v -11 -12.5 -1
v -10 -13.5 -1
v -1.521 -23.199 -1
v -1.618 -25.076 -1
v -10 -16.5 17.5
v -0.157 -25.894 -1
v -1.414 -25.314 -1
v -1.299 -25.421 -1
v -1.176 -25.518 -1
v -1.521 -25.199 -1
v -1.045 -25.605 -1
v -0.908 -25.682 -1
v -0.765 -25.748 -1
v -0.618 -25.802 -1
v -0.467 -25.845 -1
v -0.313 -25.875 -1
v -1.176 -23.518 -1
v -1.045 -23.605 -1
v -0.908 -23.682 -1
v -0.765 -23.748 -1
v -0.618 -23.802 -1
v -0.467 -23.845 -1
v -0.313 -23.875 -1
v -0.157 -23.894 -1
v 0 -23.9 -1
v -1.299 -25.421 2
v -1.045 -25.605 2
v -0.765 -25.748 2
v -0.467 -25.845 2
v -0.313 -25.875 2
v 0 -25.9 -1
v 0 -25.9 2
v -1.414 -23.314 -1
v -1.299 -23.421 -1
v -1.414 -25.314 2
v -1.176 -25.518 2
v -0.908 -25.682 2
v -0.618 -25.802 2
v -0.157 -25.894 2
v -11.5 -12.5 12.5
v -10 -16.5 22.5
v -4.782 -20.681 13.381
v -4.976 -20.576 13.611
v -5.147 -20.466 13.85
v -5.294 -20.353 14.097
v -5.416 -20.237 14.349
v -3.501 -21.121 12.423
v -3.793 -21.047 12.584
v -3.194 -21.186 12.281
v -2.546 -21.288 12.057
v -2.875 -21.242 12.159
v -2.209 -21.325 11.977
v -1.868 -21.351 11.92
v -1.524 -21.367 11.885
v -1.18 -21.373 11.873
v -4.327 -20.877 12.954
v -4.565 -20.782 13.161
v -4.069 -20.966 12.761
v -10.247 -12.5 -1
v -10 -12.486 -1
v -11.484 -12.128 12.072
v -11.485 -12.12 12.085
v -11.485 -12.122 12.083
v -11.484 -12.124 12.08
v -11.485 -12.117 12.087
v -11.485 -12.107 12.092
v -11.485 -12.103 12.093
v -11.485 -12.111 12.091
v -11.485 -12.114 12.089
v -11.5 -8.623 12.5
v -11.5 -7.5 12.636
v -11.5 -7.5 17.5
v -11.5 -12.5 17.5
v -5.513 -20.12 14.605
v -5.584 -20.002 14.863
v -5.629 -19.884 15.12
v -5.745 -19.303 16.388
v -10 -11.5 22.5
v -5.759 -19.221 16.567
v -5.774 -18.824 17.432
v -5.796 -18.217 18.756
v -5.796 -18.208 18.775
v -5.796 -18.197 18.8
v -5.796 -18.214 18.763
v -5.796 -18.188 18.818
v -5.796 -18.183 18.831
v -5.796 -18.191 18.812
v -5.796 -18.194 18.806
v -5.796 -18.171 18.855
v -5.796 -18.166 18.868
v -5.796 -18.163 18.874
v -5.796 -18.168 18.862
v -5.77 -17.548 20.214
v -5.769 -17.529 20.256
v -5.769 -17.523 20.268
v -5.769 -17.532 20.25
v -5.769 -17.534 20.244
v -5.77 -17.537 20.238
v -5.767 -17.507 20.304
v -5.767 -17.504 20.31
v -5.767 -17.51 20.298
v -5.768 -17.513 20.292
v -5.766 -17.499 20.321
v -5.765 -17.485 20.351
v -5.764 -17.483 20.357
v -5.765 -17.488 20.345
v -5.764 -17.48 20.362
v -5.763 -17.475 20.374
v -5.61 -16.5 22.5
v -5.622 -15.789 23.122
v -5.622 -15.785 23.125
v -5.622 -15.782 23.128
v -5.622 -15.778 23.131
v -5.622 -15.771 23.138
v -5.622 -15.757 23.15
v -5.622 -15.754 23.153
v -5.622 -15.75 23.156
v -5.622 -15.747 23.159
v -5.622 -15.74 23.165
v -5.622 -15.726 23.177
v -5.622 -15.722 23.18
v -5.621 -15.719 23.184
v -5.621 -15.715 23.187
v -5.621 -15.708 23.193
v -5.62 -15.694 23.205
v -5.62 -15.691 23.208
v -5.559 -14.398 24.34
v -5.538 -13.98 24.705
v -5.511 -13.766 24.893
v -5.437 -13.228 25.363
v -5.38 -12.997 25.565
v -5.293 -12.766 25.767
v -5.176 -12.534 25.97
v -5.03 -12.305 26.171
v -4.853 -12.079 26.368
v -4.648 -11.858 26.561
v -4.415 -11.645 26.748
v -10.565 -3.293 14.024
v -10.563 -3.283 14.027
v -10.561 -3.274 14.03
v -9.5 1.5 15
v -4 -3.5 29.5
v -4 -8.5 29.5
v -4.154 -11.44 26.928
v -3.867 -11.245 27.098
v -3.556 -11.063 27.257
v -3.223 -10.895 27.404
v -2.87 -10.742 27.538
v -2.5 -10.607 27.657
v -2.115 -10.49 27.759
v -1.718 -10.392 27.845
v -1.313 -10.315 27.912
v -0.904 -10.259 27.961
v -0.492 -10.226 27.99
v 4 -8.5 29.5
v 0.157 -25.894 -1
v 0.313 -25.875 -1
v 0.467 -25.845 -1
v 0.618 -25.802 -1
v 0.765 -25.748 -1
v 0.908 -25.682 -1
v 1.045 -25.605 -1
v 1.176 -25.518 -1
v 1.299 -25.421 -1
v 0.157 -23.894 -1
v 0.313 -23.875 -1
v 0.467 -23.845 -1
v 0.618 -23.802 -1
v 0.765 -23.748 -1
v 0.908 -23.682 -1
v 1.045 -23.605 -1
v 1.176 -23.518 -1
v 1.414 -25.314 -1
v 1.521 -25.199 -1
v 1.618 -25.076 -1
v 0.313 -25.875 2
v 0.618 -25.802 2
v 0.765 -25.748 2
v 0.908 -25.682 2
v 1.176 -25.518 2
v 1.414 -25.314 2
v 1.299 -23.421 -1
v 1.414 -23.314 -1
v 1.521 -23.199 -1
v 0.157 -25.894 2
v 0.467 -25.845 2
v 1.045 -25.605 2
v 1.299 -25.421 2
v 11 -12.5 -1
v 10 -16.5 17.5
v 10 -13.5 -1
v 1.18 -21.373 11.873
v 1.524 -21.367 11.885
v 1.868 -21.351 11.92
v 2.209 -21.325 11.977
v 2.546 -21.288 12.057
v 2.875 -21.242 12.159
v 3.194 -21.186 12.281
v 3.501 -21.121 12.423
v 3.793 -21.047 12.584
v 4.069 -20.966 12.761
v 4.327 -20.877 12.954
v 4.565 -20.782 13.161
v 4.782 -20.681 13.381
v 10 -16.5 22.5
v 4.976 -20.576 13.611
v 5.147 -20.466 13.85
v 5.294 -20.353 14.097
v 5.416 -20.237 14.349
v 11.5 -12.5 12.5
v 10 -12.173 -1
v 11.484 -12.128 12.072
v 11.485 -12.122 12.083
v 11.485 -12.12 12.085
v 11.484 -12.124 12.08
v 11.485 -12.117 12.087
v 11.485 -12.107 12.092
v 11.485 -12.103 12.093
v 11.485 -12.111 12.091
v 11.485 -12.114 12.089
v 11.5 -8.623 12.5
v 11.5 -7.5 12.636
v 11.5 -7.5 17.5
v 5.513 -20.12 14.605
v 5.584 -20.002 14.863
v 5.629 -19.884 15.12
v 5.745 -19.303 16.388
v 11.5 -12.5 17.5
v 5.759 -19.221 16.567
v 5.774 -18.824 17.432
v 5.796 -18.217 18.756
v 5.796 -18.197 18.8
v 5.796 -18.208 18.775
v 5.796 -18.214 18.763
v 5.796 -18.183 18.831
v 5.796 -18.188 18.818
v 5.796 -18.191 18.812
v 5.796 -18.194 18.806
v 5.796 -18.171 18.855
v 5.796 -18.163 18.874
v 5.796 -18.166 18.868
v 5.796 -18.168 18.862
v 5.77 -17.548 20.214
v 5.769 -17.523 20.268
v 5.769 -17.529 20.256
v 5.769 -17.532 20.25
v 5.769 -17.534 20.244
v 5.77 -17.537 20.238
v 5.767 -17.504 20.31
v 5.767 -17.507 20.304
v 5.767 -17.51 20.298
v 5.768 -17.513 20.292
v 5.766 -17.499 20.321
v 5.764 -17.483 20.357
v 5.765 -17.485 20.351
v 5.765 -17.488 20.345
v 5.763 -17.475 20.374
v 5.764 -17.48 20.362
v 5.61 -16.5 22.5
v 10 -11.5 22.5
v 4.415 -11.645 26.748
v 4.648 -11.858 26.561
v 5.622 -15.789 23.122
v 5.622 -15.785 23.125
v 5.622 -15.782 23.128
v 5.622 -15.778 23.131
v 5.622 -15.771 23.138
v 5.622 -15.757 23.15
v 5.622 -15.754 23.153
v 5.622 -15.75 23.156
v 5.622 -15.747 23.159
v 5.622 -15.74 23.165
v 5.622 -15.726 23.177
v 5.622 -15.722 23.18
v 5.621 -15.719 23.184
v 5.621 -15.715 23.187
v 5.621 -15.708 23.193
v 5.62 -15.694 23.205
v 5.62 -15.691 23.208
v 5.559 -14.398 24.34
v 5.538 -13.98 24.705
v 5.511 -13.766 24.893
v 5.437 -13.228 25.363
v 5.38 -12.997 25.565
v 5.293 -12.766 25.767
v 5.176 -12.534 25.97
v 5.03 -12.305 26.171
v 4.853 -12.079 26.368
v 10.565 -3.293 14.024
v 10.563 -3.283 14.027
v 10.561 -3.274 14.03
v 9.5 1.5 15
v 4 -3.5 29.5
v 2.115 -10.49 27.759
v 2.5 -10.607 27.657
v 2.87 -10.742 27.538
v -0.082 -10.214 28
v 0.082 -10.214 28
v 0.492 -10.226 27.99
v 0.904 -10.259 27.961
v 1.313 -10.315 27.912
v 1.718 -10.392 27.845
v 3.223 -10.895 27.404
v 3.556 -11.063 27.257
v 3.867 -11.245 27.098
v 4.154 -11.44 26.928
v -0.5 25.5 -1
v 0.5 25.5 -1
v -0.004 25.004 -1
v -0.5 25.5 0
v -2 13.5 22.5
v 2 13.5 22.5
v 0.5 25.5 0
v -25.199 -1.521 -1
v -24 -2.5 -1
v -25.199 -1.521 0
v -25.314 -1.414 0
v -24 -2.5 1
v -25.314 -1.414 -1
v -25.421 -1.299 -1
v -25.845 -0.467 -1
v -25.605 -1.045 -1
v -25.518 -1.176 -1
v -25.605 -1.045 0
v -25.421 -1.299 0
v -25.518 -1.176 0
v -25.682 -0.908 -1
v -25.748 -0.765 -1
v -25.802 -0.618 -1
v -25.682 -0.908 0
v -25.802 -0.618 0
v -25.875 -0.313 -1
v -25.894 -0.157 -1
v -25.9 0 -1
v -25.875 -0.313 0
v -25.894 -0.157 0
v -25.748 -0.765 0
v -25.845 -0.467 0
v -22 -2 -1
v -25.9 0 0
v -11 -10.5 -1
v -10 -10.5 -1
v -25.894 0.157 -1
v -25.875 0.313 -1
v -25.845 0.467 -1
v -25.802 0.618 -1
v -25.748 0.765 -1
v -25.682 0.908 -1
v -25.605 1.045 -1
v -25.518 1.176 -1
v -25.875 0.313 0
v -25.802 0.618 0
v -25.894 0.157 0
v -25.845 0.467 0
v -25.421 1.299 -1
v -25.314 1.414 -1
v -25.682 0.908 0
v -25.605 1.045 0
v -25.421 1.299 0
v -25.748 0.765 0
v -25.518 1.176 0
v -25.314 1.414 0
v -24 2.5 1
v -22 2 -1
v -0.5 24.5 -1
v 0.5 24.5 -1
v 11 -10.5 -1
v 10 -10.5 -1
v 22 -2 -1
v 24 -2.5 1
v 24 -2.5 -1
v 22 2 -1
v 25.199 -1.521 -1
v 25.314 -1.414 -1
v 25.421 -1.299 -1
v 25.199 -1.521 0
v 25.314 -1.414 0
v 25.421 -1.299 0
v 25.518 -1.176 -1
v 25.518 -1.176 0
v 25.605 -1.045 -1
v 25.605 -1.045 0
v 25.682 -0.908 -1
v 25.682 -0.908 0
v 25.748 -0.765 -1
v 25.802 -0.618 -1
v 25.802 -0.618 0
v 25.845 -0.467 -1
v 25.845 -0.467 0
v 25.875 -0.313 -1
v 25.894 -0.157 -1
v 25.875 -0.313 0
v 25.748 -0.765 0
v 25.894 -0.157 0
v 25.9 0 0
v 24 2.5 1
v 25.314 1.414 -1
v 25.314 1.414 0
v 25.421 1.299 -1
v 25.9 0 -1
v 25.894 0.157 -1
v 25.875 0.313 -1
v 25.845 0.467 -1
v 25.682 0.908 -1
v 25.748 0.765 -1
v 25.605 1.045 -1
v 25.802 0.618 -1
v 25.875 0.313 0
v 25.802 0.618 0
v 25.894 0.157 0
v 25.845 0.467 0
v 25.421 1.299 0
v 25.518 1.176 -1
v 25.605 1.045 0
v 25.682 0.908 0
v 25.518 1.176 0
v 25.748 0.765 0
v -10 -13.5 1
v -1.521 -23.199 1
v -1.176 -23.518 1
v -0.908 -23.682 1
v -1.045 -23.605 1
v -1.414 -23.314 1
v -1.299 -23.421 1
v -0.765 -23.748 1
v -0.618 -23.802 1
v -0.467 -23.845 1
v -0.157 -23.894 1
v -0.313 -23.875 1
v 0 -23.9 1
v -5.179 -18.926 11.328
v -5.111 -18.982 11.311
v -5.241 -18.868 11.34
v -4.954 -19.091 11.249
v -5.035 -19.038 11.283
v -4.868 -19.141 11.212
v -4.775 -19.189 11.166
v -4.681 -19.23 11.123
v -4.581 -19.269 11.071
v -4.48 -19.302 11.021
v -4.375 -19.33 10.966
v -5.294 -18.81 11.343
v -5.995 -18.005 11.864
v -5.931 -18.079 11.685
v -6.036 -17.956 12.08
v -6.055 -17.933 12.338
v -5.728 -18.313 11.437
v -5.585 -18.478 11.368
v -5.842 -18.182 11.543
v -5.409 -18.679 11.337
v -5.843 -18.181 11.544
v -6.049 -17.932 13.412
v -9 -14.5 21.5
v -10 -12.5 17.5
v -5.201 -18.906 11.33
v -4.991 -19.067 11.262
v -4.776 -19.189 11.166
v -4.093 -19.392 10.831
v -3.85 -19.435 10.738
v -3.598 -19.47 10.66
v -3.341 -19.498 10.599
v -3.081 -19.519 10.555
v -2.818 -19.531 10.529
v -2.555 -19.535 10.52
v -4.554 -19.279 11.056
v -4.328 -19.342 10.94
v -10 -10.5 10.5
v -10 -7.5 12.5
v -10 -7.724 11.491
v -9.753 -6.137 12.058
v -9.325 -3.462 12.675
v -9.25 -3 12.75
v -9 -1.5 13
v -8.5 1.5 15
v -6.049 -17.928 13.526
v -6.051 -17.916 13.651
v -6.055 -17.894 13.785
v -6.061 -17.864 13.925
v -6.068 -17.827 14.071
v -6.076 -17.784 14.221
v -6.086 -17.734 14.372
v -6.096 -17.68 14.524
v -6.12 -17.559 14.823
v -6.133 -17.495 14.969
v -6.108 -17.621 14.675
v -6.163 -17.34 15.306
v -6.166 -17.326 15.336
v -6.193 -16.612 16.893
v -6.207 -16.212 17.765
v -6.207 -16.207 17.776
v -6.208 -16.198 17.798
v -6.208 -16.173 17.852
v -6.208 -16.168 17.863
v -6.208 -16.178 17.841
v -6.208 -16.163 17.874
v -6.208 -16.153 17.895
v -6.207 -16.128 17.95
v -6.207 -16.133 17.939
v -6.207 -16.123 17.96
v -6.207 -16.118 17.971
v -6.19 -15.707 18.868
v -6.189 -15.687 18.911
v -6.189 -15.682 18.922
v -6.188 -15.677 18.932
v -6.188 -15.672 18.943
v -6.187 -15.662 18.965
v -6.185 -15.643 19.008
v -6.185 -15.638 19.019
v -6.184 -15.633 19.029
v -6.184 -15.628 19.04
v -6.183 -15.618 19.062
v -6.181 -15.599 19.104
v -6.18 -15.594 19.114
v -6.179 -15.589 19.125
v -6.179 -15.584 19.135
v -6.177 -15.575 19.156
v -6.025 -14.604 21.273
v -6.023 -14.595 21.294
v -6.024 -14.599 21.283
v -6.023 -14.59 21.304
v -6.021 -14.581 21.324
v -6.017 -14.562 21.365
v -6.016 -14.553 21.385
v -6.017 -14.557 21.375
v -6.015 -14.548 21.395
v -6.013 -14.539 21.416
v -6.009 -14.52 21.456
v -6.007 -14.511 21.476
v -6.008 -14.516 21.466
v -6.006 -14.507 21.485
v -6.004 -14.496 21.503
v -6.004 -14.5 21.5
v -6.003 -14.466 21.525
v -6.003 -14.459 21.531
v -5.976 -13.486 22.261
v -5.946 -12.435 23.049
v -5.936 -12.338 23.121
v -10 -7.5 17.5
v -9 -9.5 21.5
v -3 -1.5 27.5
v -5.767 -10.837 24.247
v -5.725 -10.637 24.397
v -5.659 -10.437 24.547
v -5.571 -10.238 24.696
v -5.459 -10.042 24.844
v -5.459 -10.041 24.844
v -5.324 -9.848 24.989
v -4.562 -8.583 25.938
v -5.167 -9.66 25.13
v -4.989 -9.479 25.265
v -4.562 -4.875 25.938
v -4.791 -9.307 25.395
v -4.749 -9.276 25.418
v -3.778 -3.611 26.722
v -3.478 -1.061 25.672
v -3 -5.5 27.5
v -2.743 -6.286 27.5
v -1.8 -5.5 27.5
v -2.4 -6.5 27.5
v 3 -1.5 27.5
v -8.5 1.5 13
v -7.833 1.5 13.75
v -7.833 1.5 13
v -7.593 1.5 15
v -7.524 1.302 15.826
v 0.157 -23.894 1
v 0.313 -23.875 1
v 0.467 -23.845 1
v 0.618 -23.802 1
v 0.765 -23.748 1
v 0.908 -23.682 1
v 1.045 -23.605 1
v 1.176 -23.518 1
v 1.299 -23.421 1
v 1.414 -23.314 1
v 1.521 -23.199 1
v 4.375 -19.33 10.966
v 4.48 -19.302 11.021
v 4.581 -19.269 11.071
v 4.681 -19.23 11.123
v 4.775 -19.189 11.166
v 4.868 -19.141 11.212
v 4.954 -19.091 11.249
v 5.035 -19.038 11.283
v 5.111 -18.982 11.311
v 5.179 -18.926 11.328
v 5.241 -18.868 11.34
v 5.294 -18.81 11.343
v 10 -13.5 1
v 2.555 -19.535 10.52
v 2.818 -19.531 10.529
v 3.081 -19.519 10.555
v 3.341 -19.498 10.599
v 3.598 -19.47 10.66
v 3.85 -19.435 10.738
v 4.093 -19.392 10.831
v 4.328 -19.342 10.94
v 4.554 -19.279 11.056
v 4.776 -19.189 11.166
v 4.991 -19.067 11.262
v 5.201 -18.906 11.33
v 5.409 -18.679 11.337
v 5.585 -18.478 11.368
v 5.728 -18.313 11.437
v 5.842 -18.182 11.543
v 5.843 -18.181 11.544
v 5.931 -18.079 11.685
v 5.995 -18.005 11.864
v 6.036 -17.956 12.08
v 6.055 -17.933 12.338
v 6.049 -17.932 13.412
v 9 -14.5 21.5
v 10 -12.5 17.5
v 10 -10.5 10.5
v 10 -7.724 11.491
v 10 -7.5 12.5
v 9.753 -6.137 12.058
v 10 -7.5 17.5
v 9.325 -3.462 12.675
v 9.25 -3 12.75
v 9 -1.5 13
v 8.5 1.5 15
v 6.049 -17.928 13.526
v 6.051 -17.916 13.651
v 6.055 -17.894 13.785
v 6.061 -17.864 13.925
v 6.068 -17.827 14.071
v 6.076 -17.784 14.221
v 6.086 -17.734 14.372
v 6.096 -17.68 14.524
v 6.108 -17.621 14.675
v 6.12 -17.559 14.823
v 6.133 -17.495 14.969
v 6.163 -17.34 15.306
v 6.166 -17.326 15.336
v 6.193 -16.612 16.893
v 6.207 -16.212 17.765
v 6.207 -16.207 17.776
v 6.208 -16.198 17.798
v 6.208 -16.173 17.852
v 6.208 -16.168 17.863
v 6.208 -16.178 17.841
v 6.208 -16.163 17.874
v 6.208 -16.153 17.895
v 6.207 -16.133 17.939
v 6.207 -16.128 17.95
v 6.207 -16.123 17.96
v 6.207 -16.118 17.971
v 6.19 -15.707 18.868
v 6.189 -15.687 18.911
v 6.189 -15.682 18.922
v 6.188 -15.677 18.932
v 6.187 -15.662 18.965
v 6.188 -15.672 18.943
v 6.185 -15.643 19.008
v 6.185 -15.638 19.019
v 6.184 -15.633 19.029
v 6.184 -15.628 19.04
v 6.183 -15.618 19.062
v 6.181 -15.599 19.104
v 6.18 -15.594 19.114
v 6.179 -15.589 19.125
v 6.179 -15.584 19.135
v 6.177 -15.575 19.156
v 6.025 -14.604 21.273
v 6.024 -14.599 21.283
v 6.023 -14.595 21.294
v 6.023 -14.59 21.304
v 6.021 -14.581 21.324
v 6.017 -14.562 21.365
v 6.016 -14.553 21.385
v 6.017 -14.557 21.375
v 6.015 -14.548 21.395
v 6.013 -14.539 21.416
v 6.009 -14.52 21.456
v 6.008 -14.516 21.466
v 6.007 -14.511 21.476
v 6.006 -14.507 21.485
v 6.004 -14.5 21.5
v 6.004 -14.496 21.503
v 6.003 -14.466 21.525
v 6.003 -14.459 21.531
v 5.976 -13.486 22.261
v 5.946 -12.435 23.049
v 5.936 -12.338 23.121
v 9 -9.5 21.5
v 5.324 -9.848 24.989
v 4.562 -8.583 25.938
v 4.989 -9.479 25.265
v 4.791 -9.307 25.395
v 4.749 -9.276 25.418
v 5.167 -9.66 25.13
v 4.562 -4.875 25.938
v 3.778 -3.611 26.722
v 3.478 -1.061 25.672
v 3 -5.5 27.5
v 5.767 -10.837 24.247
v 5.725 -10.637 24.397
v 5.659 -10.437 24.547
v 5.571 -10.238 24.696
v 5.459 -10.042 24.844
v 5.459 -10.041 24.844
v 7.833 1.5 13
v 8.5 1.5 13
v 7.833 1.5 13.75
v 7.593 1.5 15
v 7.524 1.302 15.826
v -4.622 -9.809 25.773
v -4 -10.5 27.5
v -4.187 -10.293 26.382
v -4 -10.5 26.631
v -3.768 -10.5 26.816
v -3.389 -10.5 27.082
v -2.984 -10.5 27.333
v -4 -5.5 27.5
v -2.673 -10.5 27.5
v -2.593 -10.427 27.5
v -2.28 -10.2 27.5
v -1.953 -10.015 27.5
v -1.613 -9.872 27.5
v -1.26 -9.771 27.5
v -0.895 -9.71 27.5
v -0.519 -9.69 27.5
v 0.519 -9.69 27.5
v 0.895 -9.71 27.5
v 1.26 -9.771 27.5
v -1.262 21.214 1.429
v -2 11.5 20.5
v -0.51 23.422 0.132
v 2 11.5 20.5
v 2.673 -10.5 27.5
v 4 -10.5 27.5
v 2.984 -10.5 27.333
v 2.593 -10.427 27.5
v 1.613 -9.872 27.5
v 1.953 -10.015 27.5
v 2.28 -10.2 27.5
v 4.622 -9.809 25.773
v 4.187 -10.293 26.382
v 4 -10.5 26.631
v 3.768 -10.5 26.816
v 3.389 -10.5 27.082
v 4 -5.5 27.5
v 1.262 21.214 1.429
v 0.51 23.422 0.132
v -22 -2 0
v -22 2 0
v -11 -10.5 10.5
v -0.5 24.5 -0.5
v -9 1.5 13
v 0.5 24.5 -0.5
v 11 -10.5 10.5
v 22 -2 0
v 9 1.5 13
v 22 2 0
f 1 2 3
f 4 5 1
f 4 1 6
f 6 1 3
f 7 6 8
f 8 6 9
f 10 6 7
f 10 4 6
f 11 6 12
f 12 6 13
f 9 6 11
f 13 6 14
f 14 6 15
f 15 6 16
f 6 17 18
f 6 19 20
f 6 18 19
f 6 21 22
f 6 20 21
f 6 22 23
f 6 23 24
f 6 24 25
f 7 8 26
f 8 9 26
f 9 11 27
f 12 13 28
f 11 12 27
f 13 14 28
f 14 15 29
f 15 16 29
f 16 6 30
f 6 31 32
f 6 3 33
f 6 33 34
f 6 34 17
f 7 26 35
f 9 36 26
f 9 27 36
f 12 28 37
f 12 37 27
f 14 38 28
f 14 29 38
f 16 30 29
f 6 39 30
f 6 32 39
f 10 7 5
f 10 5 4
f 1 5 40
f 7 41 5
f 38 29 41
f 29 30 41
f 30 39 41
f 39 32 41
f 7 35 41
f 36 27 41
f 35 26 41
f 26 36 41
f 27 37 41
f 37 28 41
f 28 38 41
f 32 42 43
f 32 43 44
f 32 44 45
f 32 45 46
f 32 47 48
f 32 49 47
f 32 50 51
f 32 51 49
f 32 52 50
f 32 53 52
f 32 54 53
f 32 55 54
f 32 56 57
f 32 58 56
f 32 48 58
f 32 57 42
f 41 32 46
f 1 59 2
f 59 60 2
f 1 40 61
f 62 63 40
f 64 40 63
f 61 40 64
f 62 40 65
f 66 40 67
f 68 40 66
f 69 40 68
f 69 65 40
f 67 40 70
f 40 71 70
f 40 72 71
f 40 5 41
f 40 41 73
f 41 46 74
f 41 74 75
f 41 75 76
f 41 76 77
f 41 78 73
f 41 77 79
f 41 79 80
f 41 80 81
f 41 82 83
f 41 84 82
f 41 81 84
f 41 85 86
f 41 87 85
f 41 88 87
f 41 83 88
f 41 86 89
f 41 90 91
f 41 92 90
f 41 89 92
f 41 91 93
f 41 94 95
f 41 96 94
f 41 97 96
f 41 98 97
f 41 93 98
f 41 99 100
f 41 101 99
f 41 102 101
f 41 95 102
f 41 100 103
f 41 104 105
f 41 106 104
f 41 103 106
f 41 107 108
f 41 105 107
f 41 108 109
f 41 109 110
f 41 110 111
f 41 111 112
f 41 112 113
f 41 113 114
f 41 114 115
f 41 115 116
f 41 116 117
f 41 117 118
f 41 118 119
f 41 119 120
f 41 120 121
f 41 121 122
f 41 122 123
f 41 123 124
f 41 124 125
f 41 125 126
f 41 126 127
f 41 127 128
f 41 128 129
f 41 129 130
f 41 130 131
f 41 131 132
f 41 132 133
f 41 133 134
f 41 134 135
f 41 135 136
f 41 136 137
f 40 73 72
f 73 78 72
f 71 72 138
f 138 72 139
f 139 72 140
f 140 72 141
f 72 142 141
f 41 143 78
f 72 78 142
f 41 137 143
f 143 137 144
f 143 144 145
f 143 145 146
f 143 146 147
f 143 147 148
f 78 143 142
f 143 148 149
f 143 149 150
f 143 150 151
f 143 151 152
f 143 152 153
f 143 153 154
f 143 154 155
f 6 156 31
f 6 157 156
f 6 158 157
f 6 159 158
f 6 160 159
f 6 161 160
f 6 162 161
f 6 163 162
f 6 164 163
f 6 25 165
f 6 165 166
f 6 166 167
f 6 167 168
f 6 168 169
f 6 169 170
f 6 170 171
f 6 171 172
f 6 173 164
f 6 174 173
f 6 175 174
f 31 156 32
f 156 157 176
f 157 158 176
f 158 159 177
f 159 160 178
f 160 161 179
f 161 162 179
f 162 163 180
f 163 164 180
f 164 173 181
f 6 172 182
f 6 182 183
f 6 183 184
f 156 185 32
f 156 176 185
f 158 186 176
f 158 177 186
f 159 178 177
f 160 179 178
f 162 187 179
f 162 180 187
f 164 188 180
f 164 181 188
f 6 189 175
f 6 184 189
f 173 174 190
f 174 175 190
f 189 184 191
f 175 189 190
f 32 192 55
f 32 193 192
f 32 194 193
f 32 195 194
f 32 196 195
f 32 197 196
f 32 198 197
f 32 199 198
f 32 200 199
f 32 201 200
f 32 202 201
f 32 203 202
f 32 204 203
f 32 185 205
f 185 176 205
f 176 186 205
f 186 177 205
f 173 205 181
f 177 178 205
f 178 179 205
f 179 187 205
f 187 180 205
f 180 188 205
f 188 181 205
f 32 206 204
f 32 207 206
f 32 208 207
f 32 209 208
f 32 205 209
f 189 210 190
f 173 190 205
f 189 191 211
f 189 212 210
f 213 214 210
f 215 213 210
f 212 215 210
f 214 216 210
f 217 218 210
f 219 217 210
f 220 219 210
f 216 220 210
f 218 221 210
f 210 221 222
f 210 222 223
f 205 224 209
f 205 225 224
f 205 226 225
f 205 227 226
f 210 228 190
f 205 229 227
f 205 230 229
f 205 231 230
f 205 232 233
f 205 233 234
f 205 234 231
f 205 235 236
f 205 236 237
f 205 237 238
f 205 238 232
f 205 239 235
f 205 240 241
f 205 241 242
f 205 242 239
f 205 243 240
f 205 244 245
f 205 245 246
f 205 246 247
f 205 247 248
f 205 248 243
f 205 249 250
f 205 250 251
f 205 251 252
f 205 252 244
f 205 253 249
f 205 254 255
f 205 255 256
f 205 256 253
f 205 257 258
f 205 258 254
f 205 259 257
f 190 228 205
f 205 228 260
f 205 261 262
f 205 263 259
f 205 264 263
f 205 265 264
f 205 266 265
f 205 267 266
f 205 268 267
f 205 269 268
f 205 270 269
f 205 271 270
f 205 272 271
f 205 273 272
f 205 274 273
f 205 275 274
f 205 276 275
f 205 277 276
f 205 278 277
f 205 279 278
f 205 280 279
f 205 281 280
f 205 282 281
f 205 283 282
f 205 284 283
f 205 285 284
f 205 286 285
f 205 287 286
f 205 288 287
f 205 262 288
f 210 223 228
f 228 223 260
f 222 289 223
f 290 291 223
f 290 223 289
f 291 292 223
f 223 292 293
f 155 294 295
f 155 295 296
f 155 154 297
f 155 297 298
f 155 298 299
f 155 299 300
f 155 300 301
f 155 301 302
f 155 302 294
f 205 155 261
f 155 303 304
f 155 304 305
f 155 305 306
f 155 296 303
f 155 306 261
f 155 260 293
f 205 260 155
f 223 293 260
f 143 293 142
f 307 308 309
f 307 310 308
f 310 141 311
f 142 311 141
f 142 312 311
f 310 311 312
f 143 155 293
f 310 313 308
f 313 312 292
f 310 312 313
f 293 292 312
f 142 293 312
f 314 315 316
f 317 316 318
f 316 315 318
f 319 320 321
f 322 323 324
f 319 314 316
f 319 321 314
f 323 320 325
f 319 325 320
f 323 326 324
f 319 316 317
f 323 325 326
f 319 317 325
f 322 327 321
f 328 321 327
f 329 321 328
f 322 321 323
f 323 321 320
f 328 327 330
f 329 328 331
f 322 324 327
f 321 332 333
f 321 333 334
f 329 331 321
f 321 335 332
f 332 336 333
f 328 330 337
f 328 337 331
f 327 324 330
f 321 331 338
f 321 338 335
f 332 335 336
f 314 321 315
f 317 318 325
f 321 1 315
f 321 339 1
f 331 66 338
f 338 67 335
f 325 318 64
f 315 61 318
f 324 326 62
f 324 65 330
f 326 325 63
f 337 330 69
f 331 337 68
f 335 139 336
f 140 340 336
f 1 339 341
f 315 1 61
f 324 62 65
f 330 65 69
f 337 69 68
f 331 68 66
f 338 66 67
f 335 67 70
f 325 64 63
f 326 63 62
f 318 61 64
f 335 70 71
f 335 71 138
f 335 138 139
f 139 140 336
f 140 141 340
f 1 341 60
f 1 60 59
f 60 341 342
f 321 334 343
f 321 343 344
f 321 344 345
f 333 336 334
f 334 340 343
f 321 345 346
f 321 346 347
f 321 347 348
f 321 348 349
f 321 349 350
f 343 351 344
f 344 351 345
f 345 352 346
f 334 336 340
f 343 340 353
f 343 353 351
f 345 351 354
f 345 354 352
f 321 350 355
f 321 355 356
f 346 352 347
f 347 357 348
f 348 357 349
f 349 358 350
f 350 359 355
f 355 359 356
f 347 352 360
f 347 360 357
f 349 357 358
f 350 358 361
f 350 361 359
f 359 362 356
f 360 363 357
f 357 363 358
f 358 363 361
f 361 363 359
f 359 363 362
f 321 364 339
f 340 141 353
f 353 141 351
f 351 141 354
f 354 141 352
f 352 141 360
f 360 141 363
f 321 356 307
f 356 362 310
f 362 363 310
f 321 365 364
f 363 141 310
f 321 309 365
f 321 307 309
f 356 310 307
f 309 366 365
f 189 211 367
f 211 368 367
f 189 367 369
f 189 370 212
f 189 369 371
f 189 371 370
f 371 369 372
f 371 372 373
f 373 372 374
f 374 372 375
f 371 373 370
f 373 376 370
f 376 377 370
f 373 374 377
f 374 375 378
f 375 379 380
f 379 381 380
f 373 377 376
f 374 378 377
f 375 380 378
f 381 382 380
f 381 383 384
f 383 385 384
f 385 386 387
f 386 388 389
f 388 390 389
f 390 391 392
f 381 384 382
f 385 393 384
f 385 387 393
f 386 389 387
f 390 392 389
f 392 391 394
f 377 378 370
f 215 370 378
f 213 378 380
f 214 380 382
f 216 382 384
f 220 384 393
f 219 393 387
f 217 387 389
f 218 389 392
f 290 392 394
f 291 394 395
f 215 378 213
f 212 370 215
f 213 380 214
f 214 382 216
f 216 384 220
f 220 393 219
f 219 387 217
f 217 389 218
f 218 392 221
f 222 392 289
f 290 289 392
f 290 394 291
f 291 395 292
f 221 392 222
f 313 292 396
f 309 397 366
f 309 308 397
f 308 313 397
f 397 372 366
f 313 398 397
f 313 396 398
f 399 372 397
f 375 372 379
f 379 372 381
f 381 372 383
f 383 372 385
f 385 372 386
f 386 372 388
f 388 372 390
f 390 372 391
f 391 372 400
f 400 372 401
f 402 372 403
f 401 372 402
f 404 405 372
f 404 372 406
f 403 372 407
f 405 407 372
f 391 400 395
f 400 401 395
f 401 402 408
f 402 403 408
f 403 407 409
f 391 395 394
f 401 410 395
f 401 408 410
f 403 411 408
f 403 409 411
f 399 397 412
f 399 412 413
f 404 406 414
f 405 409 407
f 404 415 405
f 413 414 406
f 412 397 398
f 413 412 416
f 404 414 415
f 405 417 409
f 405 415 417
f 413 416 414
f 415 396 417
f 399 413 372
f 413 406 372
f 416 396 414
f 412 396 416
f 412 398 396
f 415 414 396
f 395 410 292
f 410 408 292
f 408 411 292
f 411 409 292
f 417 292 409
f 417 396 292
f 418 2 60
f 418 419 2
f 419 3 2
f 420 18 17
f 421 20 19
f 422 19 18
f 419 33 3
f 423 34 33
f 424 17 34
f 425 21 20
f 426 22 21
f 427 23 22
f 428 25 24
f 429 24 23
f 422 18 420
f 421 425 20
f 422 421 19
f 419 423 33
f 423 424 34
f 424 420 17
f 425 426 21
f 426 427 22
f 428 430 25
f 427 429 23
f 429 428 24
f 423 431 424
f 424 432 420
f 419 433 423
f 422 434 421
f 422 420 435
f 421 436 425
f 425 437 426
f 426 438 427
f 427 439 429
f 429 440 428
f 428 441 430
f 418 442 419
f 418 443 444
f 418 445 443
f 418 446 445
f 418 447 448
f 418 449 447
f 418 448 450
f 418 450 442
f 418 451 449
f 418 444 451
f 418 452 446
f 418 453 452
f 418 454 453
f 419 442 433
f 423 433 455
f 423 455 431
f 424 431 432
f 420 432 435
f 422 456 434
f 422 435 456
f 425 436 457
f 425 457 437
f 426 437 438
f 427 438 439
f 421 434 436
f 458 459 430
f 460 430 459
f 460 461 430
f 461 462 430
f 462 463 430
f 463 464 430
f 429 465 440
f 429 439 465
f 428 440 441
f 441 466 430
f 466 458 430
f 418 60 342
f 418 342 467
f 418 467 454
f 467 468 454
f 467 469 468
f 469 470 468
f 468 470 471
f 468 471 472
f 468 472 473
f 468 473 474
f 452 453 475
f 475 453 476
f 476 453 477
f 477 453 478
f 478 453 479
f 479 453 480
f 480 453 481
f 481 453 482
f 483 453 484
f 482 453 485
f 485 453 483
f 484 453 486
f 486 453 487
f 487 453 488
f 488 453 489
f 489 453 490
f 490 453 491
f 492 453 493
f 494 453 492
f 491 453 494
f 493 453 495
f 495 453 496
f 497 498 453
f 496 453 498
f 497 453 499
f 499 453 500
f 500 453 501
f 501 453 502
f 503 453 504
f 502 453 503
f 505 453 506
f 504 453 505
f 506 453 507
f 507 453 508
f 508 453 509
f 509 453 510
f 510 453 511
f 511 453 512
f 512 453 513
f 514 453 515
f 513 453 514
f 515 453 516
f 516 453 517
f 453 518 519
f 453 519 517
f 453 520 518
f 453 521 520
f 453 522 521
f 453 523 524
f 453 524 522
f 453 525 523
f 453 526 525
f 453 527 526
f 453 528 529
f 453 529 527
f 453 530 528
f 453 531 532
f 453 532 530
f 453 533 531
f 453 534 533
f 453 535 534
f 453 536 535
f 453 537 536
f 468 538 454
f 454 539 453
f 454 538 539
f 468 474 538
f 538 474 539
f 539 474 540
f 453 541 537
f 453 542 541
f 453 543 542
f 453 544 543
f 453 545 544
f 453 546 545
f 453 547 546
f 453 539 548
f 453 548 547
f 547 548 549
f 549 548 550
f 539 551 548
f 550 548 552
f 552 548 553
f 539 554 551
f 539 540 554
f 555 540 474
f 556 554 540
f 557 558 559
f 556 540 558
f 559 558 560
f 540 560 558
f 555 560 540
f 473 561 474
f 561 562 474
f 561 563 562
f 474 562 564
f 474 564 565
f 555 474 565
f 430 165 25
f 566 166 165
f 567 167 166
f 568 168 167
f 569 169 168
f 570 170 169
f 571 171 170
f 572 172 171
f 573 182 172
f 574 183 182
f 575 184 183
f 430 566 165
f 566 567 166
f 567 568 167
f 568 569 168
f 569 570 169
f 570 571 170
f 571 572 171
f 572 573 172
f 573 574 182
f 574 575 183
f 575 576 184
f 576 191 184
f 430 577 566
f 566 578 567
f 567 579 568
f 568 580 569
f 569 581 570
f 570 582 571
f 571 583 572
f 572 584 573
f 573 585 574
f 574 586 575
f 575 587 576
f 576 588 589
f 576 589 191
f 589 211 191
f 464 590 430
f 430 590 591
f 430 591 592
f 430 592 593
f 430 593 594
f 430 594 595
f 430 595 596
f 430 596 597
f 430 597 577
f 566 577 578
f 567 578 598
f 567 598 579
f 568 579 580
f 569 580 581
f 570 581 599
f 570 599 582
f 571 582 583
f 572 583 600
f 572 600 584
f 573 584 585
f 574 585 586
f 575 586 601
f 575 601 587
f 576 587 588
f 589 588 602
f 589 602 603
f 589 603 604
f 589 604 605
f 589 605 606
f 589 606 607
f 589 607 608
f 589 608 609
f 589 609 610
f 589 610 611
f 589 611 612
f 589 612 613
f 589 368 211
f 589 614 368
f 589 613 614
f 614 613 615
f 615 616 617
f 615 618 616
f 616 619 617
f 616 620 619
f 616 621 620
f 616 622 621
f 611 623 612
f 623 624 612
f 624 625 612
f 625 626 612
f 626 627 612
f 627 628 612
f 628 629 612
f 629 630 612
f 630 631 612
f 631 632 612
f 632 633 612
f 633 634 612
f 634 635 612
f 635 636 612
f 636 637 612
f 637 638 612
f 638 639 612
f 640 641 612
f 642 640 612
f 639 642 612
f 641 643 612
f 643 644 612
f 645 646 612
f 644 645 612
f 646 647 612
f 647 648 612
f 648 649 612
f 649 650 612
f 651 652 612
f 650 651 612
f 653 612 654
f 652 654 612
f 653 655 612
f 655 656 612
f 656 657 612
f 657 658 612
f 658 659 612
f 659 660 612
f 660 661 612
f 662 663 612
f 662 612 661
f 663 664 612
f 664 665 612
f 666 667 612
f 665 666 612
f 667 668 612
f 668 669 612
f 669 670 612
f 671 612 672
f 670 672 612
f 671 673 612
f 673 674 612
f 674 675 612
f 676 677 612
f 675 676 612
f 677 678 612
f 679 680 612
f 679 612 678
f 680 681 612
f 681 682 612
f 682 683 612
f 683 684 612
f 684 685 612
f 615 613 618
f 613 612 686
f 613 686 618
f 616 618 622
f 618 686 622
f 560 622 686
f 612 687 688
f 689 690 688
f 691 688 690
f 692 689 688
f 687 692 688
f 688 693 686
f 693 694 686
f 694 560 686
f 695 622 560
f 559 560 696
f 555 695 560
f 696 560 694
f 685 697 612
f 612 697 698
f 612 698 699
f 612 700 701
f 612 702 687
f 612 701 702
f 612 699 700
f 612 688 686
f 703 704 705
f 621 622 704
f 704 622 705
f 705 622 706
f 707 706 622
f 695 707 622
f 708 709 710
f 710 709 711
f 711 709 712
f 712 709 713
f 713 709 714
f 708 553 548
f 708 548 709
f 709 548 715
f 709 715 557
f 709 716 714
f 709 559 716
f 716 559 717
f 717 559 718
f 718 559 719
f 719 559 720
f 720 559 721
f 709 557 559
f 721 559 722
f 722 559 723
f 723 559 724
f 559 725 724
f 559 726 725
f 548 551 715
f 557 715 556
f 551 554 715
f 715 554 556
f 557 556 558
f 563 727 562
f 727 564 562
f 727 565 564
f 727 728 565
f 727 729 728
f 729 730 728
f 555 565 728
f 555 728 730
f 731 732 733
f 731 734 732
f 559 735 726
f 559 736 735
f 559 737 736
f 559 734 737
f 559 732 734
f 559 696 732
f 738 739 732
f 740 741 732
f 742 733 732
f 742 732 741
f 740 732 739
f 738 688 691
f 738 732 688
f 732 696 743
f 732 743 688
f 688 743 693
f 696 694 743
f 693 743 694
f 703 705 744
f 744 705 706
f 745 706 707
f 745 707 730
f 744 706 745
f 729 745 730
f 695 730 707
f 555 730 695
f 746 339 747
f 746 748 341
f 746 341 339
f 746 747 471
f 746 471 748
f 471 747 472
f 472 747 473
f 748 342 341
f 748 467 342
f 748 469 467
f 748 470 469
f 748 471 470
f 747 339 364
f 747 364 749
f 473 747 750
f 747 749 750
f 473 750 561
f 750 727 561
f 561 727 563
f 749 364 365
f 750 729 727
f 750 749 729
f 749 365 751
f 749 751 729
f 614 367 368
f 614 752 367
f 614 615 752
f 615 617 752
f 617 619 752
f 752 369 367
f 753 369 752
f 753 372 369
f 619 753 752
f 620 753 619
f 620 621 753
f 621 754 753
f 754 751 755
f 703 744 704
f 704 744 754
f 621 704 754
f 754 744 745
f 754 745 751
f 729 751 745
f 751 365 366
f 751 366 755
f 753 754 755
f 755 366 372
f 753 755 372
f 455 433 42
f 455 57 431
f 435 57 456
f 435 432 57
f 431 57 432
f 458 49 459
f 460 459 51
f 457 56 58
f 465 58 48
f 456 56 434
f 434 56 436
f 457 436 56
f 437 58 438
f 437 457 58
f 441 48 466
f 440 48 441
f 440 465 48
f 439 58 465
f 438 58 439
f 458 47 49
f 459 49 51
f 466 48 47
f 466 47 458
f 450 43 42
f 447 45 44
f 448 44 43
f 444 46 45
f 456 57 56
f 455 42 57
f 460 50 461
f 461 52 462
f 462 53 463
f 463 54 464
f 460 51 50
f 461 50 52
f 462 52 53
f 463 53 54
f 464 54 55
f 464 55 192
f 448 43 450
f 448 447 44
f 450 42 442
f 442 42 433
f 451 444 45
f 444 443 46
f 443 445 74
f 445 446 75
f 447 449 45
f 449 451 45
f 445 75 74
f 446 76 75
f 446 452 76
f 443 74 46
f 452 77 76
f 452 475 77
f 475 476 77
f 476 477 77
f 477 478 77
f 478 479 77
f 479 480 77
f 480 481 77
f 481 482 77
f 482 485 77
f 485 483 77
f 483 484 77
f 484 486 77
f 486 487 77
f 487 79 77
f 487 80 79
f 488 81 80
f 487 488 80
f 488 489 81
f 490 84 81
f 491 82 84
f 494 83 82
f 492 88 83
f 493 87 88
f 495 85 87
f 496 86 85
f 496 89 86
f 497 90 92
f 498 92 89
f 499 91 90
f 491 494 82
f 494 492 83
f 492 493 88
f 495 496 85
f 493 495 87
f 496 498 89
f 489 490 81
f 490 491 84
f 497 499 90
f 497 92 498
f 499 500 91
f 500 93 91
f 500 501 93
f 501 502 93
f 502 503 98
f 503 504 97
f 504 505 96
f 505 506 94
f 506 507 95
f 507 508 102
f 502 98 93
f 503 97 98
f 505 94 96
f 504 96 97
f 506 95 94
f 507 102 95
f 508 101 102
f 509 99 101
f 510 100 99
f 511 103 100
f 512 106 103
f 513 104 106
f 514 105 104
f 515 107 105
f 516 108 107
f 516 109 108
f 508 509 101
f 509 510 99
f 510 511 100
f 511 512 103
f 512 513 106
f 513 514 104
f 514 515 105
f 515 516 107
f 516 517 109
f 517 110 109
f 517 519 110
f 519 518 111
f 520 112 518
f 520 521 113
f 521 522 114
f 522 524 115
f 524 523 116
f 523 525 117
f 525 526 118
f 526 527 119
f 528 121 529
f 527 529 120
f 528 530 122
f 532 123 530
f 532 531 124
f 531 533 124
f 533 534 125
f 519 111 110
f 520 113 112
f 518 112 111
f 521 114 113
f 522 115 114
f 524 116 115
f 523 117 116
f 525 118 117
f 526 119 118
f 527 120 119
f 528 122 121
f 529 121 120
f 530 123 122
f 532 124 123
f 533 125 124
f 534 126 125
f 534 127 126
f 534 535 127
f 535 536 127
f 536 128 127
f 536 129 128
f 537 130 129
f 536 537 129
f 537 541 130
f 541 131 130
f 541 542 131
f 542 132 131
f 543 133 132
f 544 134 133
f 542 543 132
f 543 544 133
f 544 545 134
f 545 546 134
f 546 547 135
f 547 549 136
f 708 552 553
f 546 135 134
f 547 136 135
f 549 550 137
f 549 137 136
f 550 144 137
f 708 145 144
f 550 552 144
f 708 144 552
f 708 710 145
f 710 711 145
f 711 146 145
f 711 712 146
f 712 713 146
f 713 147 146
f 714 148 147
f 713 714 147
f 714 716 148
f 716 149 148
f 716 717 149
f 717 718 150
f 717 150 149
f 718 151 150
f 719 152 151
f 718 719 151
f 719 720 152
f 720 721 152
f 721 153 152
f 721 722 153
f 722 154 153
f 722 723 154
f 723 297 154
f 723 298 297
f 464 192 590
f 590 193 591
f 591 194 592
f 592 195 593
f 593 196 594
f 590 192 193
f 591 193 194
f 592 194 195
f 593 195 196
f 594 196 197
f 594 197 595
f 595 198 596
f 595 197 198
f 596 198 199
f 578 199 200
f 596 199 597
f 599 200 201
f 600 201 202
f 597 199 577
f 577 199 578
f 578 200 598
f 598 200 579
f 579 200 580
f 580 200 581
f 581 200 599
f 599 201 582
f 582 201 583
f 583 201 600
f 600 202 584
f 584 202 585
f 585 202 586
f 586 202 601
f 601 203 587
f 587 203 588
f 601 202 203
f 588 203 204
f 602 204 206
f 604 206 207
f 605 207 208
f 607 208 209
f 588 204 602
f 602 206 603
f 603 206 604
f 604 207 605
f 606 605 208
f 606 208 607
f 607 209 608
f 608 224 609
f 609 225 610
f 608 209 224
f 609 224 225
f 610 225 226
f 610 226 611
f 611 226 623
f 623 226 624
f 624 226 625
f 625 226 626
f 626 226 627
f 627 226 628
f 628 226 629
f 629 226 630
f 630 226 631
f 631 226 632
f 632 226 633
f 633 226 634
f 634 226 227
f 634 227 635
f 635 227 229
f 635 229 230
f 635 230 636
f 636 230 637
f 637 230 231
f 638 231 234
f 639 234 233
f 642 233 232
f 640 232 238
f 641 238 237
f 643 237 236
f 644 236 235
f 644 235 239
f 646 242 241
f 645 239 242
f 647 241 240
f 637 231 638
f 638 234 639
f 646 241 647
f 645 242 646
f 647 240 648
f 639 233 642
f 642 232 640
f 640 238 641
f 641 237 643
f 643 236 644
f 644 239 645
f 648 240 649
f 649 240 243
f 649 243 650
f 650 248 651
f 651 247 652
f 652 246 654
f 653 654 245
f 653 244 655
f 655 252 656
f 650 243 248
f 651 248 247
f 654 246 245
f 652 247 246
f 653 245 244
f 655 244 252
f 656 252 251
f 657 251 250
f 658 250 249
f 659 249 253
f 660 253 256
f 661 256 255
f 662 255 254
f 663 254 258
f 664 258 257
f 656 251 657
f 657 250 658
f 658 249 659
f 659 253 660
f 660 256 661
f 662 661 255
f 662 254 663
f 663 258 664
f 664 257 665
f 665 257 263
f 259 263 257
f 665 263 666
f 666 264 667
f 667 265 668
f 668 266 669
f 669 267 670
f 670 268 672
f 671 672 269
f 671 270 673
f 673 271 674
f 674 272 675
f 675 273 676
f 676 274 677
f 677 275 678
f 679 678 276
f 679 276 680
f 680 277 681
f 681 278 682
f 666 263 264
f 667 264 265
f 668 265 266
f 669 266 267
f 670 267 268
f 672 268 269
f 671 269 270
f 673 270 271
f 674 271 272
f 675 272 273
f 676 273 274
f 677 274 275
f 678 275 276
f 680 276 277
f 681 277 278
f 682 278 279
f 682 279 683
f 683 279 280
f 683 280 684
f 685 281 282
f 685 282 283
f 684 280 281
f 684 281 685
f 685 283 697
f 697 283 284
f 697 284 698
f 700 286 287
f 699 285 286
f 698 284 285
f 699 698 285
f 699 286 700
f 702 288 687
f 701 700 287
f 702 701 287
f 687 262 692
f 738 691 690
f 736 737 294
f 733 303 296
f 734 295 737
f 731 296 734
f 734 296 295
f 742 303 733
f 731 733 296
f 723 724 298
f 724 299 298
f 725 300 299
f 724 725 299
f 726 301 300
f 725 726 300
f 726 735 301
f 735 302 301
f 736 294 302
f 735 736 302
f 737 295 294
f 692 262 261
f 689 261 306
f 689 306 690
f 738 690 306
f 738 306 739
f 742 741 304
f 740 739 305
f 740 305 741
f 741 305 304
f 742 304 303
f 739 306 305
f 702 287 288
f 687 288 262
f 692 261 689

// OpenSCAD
$fn=80;

module babyTurtle() {
    module body() {
        hull() {
            cube([14,14,0.01], center=true);
            translate([0,0,9.5]) cube([12.5,12.5,0.01], center=true);
        }
        translate([0,0,9.5]) cylinder(d=10.5,h=9);
    }
    
    module mountHole() {
        translate([-14/2,0,6.5]) rotate([0,90,0]) {
            difference() {
                cylinder(d=5,h=14);
                translate([0,0,-0.5]) cylinder(d=2,h=15);
            }
            %translate([0,0,-5.5]) cylinder(d=2,h=25);
        }
    }

    translate([0,0,-6.5]) {
        body();
        mountHole();
    }
}

module vtx() {
    module body() {
        hull() {
            cube([3.3,29,1], center=true);
            translate([-16.5,0,0]) cube([0.01,8.2,1], center=true);
        }
    }
    
    module mountHoles() {
        translate([0.75-(2.5/2),(29/2)-1-(2.5/2),-2]) cylinder(d=2.5,h=4);
        translate([0.75-(2.5/2),-((29/2)-1-(2.5/2)),-2]) cylinder(d=2.5,h=4);
    }
    
    module connector() {
        translate([-4,5.5,2]) rotate([0,0,-55]) cube([4.5,7.5,3.1], center=true);
    }
    
    module antenna() {
        translate([-22.5,0,0]) rotate([0,90,0]) cylinder(d=4.3,h=6);
    }
    
    difference() {
        body();
        mountHoles();
    }
    
    connector();
    antenna();
}


module propClearnce() {
    rotate([0,0,45]) translate([115/2,0,0]) cylinder(d=72,h=6);
    rotate([0,0,45+90]) translate([115/2,0,0]) cylinder(d=72,h=6);
    rotate([0,0,45+180]) translate([115/2,0,0]) cylinder(d=72,h=6);
    rotate([0,0,45+270]) translate([115/2,0,0]) cylinder(d=72,h=6);
}


module frameMountHoles() {
    translate([47.8/2,0,0]) cylinder(d=2,h=1);
    translate([-47.8/2,0,0]) cylinder(d=2,h=1);
    translate([0,47.8/2,0]) cylinder(d=2,h=1);
    translate([0,-47.8/2,0]) cylinder(d=2,h=1);
}


module cameraClearance() {
    translate([0,-10,10]) {
        hull () {
            rotate([90-15,0,0]) babyTurtle();
            rotate([90-25,0,0]) babyTurtle();
            rotate([90-35,0,0]) babyTurtle();
            rotate([90-55,0,0]) babyTurtle();
            rotate([90-65,0,0]) babyTurtle();
        }
        
        %rotate([90-30,0,0]) babyTurtle();
    }
}


module canopy() {
    module cameraShroud() {
        hull() {
            translate([0,-47.8/2,-1]) cylinder(d=4,h=3);
            translate([0,-6,27]) cube([8,5,5], center=true);
            translate([0,-14,20]) cube([20,5,5], center=true);
            translate([0,-10,15]) cube([23,5,5], center=true);
            translate([0,-12,0]) cube([22,1,2], center=true);
            translate([0,-1,14]) cube([19,5,2], center=true);
        }
    }
    
    module cameraShrouldHollow() {
        hull() {
            translate([0,(-47.8/2)+2,-2]) cylinder(d=4,h=3);
            translate([0,-4,25]) cube([6,5,5], center=true);
            translate([0,-12,20]) cube([18,5,3], center=true);
            translate([0,-10,15]) cube([20,5,5], center=true);
            translate([0,-12,0]) cube([20,3,2], center=true);
            translate([0,-1,14]) cube([17,5,2], center=true);
        }
    }
    
    module rear() {
        hull() {
            translate([0,-6,27]) cube([8,5,5], center=true);
            translate([0,11,20]) cube([4,5,5], center=true);
            translate([0,25,-0.5]) cube([1,1,1], center=true);
            translate([0,-1,14]) cube([19,5,2], center=true);
        }
    }
    
    module rearHollow() {
        hull() {
            translate([0,-8,25]) cube([8,5,5], center=true);
            translate([0,9,18]) cube([4,5,5], center=true);
            translate([0,23,-0.5]) cube([1,1,1], center=true);
            translate([0,-3,14]) cube([17,5,2], center=true);
        }
    }
    
    module underside() {
        hull() {
            translate([0,0,0]) cube([48,5,2], center=true);
              translate([47.8/2,0,-1]) cylinder(d=4,h=1);
              translate([-47.8/2,0,-1]) cylinder(d=4,h=1);
            translate([0,25,-0.5]) cube([1,1,1], center=true);
            translate([0,-10,0]) cube([22,5,2], center=true);
            translate([0,-10,12]) cube([22,5,1], center=true);
            translate([0,-1,14]) cube([19,5,2], center=true);
        }
    }
        
    module underSideHollow() {
        hull() {
            translate([0,0,-1]) cube([44,4,2], center=true);
            translate([0,24,-1]) cube([1,1,1], center=true);
            translate([0,-8,-1]) cube([22,5,2], center=true);
            translate([0,-8,10]) cube([22,5,1], center=true);
            translate([0,-1,12]) cube([18,5,2], center=true);
        }
    }

    module hollow() {
        cameraShrouldHollow();
        rearHollow();
        underSideHollow();
    }
    
    difference() {
        union() {
            cameraShroud();
            rear();
            underside();
        }
        translate([0,0,5]) cameraClearance();
        hollow();
    }
}

    
module stackCover() {
    module frame() {
        difference() {
            linear_extrude(height=9) projection(cut=true) canopy();
            stack();
        }
    }
    
    module standoffs() {
        module standoff() {
            cylinder(d=4,h=11);
        }
        translate([47.8/2,0,0]) standoff();
        translate([-47.8/2,0,0]) standoff();
        translate([0,-47.8/2,0]) standoff();
    }
    
    module standoffHoles() {
        module standoffHole() {
            translate([0,0,-0.5]) cylinder(d=2,h=12);
        }
        translate([47.8/2,0,0]) standoffHole();
        translate([-47.8/2,0,0]) standoffHole();
        translate([0,-47.8/2,0]) standoffHole();
    }
    
    difference() {
        union() {
            frame();
            translate([0,0,-2]) standoffs();
        }
        standoffHoles();
    }
}


//%translate([0,0,-9]) stackCover();

canopy();

module stack() {
    translate([0,0,11/2]) rotate([0,0,45]) cube([32,32,11], center=true);
}

//%translate([0,0,-12]) stack();
//%translate([0,0,-12]) frameMountHoles();


//%translate([0,8,1]) rotate([0,90,0]) vtx();
//%translate([0,-3,1]) rotate([-40,0,0]) rotate([-90,90,0]) vtx();

//%translate([0,0,5]) cameraClearance();
//%propClearnce();
